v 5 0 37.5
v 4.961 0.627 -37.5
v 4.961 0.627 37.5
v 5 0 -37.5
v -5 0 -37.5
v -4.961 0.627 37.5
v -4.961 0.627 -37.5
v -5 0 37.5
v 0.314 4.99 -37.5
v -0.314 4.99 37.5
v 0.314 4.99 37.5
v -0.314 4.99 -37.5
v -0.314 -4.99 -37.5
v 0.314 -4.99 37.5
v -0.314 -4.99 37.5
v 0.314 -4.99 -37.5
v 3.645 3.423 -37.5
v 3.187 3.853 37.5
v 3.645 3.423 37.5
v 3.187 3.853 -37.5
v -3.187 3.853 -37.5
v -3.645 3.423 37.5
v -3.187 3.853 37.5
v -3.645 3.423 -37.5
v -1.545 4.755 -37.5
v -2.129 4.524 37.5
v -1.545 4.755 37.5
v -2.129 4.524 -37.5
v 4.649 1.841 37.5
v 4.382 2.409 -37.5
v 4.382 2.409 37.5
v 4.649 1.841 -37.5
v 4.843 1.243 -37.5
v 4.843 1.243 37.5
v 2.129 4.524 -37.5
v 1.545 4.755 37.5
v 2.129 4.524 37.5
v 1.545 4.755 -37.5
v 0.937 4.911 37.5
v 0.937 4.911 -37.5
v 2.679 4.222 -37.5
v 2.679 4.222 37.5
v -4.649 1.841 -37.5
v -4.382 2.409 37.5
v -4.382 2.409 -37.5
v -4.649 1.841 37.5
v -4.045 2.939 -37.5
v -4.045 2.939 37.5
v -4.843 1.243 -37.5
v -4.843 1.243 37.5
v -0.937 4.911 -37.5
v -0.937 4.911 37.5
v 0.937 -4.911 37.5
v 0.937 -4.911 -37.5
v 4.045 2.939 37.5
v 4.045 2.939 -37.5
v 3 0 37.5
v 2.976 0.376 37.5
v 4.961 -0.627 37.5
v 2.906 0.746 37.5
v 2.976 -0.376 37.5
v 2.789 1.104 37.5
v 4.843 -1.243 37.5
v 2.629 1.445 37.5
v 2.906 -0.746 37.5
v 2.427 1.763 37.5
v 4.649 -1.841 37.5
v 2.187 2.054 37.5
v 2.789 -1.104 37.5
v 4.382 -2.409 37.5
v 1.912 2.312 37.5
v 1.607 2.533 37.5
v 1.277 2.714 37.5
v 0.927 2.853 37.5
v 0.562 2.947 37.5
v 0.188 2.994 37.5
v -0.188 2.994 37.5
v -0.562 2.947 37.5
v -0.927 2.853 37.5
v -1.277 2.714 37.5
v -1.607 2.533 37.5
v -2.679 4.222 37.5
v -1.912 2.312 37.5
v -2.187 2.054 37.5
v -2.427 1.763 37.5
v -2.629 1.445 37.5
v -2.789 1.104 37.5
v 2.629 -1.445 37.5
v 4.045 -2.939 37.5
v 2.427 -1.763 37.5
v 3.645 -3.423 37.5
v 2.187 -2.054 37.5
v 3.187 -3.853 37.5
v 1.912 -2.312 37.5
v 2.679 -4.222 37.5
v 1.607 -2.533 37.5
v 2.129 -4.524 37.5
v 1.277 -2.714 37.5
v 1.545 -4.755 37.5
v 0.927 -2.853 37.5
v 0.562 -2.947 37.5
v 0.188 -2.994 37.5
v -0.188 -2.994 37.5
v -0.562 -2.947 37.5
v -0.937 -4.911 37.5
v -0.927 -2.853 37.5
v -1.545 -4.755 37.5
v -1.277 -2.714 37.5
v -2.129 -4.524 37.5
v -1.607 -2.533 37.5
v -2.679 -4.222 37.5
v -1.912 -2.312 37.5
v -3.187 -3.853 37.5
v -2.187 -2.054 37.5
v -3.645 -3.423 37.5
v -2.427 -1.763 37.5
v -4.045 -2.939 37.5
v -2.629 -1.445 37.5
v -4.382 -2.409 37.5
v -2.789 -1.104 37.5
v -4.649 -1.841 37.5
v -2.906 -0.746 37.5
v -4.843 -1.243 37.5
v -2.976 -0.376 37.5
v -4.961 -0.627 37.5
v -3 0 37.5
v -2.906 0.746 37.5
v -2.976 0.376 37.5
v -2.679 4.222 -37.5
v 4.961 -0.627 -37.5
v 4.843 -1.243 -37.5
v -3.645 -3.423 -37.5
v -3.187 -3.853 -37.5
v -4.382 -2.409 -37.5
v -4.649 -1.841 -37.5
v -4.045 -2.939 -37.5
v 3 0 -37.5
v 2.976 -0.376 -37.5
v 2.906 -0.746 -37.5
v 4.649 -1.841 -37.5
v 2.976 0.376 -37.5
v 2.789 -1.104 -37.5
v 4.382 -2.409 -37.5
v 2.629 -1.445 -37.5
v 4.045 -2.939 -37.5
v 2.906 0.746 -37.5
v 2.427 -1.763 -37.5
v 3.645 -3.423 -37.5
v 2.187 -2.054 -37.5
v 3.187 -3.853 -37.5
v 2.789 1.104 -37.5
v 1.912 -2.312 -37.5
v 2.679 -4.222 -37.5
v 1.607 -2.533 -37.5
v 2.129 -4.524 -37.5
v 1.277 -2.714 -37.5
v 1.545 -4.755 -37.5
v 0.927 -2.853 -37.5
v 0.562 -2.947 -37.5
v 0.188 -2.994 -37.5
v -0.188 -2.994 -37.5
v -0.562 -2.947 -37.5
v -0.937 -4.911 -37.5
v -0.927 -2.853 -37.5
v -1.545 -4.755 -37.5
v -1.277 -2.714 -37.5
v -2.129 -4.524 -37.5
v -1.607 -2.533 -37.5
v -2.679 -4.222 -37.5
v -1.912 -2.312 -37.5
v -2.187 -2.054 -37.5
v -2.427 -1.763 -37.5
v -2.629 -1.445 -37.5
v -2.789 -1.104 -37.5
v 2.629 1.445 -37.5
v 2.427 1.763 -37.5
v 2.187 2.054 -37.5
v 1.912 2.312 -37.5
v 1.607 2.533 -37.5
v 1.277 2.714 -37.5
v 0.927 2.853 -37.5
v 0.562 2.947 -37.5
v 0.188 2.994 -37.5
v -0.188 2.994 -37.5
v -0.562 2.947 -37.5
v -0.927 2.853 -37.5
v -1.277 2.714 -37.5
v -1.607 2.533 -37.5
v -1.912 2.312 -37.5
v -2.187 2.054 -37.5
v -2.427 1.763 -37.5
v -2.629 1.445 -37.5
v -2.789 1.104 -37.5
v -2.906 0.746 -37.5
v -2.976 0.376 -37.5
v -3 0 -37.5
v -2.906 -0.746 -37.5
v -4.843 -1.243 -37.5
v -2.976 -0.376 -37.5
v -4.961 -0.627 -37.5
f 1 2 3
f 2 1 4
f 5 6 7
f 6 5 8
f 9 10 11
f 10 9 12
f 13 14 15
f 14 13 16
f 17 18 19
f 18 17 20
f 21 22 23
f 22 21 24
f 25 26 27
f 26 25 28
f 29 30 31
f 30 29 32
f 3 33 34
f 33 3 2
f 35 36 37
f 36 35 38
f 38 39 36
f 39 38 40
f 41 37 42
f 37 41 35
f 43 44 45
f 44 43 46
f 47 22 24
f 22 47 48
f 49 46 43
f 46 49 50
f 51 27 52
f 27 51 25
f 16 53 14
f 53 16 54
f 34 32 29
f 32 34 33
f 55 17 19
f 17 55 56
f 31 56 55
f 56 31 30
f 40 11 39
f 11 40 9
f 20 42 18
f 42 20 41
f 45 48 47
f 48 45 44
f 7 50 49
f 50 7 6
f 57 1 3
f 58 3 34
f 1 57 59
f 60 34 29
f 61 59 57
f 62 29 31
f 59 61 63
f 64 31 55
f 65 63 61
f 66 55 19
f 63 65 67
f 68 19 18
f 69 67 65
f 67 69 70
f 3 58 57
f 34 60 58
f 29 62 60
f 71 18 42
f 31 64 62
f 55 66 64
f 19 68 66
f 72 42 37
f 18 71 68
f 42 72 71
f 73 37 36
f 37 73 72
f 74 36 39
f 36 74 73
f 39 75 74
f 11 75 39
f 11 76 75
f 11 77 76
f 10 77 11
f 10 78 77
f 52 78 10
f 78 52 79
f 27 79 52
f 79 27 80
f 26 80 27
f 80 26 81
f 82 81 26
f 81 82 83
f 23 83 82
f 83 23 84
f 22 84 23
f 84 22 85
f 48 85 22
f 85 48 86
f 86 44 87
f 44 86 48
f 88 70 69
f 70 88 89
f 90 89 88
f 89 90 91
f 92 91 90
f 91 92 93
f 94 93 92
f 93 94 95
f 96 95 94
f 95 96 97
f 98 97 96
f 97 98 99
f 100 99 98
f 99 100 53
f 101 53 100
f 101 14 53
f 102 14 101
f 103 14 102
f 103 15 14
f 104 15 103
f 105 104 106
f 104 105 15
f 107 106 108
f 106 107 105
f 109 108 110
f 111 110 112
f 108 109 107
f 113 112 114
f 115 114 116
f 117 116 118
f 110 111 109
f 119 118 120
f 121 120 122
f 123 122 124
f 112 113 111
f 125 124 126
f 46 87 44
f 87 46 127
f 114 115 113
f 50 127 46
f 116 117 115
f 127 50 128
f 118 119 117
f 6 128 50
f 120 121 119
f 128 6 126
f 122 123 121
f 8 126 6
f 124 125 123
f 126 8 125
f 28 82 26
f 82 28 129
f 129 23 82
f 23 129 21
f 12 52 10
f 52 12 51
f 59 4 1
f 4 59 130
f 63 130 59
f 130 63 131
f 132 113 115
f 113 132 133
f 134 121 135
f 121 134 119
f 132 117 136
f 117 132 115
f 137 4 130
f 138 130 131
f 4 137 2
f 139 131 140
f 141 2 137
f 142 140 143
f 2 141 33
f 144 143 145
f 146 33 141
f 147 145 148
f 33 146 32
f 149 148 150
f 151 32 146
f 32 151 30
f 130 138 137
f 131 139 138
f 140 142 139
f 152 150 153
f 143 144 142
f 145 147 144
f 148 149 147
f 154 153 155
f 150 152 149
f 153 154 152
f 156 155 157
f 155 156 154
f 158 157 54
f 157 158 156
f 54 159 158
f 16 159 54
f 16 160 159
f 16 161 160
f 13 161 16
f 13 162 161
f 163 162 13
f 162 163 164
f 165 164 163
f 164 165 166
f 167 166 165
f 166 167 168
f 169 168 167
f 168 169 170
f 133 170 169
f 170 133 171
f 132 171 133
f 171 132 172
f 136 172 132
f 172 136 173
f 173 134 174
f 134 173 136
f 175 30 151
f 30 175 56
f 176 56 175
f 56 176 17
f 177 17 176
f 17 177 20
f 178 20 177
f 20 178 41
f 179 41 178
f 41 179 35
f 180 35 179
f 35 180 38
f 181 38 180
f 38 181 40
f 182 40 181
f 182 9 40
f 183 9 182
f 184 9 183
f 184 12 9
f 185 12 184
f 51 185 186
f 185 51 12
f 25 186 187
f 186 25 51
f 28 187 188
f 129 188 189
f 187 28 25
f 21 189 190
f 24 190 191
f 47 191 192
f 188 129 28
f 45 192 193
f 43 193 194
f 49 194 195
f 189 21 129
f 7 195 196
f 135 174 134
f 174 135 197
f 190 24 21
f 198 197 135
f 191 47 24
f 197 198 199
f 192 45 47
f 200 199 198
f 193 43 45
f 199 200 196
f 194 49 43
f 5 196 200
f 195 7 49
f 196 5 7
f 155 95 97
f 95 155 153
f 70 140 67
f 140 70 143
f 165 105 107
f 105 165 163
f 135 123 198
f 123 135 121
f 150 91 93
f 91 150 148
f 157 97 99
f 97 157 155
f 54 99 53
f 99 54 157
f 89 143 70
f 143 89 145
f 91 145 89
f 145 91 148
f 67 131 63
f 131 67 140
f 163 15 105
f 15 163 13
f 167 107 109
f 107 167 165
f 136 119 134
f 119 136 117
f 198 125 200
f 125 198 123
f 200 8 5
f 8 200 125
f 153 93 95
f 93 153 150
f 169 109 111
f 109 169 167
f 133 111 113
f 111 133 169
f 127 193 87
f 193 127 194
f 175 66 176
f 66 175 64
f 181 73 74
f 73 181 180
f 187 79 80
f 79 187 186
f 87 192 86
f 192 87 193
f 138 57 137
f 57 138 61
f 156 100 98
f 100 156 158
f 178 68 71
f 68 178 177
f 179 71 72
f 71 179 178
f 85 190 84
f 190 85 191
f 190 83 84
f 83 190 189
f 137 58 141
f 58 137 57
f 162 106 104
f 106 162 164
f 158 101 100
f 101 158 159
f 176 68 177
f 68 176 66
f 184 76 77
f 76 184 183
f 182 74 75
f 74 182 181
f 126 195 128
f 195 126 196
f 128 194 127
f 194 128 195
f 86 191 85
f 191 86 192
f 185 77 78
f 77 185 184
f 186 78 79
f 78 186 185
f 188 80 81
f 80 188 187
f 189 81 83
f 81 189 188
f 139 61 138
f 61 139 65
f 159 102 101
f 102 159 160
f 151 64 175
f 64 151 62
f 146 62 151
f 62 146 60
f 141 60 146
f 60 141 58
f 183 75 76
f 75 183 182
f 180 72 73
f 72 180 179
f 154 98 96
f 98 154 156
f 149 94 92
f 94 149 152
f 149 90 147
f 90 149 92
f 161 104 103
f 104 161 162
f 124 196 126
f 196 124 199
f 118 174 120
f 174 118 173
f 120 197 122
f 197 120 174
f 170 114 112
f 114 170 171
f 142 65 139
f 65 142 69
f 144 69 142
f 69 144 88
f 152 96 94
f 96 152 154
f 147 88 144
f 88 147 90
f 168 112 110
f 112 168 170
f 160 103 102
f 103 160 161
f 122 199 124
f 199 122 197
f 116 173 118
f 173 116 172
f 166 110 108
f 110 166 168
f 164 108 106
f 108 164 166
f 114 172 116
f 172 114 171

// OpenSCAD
$fn = 50;


difference() {
	union() {
		translate(v = [0, 0, -37.5000000000]) {
			cylinder(h = 75, r = 5.0000000000);
		}
	}
	union() {
		translate(v = [0, 0, -100.0000000000]) {
			cylinder(h = 200, r = 3);
		}
	}
}
